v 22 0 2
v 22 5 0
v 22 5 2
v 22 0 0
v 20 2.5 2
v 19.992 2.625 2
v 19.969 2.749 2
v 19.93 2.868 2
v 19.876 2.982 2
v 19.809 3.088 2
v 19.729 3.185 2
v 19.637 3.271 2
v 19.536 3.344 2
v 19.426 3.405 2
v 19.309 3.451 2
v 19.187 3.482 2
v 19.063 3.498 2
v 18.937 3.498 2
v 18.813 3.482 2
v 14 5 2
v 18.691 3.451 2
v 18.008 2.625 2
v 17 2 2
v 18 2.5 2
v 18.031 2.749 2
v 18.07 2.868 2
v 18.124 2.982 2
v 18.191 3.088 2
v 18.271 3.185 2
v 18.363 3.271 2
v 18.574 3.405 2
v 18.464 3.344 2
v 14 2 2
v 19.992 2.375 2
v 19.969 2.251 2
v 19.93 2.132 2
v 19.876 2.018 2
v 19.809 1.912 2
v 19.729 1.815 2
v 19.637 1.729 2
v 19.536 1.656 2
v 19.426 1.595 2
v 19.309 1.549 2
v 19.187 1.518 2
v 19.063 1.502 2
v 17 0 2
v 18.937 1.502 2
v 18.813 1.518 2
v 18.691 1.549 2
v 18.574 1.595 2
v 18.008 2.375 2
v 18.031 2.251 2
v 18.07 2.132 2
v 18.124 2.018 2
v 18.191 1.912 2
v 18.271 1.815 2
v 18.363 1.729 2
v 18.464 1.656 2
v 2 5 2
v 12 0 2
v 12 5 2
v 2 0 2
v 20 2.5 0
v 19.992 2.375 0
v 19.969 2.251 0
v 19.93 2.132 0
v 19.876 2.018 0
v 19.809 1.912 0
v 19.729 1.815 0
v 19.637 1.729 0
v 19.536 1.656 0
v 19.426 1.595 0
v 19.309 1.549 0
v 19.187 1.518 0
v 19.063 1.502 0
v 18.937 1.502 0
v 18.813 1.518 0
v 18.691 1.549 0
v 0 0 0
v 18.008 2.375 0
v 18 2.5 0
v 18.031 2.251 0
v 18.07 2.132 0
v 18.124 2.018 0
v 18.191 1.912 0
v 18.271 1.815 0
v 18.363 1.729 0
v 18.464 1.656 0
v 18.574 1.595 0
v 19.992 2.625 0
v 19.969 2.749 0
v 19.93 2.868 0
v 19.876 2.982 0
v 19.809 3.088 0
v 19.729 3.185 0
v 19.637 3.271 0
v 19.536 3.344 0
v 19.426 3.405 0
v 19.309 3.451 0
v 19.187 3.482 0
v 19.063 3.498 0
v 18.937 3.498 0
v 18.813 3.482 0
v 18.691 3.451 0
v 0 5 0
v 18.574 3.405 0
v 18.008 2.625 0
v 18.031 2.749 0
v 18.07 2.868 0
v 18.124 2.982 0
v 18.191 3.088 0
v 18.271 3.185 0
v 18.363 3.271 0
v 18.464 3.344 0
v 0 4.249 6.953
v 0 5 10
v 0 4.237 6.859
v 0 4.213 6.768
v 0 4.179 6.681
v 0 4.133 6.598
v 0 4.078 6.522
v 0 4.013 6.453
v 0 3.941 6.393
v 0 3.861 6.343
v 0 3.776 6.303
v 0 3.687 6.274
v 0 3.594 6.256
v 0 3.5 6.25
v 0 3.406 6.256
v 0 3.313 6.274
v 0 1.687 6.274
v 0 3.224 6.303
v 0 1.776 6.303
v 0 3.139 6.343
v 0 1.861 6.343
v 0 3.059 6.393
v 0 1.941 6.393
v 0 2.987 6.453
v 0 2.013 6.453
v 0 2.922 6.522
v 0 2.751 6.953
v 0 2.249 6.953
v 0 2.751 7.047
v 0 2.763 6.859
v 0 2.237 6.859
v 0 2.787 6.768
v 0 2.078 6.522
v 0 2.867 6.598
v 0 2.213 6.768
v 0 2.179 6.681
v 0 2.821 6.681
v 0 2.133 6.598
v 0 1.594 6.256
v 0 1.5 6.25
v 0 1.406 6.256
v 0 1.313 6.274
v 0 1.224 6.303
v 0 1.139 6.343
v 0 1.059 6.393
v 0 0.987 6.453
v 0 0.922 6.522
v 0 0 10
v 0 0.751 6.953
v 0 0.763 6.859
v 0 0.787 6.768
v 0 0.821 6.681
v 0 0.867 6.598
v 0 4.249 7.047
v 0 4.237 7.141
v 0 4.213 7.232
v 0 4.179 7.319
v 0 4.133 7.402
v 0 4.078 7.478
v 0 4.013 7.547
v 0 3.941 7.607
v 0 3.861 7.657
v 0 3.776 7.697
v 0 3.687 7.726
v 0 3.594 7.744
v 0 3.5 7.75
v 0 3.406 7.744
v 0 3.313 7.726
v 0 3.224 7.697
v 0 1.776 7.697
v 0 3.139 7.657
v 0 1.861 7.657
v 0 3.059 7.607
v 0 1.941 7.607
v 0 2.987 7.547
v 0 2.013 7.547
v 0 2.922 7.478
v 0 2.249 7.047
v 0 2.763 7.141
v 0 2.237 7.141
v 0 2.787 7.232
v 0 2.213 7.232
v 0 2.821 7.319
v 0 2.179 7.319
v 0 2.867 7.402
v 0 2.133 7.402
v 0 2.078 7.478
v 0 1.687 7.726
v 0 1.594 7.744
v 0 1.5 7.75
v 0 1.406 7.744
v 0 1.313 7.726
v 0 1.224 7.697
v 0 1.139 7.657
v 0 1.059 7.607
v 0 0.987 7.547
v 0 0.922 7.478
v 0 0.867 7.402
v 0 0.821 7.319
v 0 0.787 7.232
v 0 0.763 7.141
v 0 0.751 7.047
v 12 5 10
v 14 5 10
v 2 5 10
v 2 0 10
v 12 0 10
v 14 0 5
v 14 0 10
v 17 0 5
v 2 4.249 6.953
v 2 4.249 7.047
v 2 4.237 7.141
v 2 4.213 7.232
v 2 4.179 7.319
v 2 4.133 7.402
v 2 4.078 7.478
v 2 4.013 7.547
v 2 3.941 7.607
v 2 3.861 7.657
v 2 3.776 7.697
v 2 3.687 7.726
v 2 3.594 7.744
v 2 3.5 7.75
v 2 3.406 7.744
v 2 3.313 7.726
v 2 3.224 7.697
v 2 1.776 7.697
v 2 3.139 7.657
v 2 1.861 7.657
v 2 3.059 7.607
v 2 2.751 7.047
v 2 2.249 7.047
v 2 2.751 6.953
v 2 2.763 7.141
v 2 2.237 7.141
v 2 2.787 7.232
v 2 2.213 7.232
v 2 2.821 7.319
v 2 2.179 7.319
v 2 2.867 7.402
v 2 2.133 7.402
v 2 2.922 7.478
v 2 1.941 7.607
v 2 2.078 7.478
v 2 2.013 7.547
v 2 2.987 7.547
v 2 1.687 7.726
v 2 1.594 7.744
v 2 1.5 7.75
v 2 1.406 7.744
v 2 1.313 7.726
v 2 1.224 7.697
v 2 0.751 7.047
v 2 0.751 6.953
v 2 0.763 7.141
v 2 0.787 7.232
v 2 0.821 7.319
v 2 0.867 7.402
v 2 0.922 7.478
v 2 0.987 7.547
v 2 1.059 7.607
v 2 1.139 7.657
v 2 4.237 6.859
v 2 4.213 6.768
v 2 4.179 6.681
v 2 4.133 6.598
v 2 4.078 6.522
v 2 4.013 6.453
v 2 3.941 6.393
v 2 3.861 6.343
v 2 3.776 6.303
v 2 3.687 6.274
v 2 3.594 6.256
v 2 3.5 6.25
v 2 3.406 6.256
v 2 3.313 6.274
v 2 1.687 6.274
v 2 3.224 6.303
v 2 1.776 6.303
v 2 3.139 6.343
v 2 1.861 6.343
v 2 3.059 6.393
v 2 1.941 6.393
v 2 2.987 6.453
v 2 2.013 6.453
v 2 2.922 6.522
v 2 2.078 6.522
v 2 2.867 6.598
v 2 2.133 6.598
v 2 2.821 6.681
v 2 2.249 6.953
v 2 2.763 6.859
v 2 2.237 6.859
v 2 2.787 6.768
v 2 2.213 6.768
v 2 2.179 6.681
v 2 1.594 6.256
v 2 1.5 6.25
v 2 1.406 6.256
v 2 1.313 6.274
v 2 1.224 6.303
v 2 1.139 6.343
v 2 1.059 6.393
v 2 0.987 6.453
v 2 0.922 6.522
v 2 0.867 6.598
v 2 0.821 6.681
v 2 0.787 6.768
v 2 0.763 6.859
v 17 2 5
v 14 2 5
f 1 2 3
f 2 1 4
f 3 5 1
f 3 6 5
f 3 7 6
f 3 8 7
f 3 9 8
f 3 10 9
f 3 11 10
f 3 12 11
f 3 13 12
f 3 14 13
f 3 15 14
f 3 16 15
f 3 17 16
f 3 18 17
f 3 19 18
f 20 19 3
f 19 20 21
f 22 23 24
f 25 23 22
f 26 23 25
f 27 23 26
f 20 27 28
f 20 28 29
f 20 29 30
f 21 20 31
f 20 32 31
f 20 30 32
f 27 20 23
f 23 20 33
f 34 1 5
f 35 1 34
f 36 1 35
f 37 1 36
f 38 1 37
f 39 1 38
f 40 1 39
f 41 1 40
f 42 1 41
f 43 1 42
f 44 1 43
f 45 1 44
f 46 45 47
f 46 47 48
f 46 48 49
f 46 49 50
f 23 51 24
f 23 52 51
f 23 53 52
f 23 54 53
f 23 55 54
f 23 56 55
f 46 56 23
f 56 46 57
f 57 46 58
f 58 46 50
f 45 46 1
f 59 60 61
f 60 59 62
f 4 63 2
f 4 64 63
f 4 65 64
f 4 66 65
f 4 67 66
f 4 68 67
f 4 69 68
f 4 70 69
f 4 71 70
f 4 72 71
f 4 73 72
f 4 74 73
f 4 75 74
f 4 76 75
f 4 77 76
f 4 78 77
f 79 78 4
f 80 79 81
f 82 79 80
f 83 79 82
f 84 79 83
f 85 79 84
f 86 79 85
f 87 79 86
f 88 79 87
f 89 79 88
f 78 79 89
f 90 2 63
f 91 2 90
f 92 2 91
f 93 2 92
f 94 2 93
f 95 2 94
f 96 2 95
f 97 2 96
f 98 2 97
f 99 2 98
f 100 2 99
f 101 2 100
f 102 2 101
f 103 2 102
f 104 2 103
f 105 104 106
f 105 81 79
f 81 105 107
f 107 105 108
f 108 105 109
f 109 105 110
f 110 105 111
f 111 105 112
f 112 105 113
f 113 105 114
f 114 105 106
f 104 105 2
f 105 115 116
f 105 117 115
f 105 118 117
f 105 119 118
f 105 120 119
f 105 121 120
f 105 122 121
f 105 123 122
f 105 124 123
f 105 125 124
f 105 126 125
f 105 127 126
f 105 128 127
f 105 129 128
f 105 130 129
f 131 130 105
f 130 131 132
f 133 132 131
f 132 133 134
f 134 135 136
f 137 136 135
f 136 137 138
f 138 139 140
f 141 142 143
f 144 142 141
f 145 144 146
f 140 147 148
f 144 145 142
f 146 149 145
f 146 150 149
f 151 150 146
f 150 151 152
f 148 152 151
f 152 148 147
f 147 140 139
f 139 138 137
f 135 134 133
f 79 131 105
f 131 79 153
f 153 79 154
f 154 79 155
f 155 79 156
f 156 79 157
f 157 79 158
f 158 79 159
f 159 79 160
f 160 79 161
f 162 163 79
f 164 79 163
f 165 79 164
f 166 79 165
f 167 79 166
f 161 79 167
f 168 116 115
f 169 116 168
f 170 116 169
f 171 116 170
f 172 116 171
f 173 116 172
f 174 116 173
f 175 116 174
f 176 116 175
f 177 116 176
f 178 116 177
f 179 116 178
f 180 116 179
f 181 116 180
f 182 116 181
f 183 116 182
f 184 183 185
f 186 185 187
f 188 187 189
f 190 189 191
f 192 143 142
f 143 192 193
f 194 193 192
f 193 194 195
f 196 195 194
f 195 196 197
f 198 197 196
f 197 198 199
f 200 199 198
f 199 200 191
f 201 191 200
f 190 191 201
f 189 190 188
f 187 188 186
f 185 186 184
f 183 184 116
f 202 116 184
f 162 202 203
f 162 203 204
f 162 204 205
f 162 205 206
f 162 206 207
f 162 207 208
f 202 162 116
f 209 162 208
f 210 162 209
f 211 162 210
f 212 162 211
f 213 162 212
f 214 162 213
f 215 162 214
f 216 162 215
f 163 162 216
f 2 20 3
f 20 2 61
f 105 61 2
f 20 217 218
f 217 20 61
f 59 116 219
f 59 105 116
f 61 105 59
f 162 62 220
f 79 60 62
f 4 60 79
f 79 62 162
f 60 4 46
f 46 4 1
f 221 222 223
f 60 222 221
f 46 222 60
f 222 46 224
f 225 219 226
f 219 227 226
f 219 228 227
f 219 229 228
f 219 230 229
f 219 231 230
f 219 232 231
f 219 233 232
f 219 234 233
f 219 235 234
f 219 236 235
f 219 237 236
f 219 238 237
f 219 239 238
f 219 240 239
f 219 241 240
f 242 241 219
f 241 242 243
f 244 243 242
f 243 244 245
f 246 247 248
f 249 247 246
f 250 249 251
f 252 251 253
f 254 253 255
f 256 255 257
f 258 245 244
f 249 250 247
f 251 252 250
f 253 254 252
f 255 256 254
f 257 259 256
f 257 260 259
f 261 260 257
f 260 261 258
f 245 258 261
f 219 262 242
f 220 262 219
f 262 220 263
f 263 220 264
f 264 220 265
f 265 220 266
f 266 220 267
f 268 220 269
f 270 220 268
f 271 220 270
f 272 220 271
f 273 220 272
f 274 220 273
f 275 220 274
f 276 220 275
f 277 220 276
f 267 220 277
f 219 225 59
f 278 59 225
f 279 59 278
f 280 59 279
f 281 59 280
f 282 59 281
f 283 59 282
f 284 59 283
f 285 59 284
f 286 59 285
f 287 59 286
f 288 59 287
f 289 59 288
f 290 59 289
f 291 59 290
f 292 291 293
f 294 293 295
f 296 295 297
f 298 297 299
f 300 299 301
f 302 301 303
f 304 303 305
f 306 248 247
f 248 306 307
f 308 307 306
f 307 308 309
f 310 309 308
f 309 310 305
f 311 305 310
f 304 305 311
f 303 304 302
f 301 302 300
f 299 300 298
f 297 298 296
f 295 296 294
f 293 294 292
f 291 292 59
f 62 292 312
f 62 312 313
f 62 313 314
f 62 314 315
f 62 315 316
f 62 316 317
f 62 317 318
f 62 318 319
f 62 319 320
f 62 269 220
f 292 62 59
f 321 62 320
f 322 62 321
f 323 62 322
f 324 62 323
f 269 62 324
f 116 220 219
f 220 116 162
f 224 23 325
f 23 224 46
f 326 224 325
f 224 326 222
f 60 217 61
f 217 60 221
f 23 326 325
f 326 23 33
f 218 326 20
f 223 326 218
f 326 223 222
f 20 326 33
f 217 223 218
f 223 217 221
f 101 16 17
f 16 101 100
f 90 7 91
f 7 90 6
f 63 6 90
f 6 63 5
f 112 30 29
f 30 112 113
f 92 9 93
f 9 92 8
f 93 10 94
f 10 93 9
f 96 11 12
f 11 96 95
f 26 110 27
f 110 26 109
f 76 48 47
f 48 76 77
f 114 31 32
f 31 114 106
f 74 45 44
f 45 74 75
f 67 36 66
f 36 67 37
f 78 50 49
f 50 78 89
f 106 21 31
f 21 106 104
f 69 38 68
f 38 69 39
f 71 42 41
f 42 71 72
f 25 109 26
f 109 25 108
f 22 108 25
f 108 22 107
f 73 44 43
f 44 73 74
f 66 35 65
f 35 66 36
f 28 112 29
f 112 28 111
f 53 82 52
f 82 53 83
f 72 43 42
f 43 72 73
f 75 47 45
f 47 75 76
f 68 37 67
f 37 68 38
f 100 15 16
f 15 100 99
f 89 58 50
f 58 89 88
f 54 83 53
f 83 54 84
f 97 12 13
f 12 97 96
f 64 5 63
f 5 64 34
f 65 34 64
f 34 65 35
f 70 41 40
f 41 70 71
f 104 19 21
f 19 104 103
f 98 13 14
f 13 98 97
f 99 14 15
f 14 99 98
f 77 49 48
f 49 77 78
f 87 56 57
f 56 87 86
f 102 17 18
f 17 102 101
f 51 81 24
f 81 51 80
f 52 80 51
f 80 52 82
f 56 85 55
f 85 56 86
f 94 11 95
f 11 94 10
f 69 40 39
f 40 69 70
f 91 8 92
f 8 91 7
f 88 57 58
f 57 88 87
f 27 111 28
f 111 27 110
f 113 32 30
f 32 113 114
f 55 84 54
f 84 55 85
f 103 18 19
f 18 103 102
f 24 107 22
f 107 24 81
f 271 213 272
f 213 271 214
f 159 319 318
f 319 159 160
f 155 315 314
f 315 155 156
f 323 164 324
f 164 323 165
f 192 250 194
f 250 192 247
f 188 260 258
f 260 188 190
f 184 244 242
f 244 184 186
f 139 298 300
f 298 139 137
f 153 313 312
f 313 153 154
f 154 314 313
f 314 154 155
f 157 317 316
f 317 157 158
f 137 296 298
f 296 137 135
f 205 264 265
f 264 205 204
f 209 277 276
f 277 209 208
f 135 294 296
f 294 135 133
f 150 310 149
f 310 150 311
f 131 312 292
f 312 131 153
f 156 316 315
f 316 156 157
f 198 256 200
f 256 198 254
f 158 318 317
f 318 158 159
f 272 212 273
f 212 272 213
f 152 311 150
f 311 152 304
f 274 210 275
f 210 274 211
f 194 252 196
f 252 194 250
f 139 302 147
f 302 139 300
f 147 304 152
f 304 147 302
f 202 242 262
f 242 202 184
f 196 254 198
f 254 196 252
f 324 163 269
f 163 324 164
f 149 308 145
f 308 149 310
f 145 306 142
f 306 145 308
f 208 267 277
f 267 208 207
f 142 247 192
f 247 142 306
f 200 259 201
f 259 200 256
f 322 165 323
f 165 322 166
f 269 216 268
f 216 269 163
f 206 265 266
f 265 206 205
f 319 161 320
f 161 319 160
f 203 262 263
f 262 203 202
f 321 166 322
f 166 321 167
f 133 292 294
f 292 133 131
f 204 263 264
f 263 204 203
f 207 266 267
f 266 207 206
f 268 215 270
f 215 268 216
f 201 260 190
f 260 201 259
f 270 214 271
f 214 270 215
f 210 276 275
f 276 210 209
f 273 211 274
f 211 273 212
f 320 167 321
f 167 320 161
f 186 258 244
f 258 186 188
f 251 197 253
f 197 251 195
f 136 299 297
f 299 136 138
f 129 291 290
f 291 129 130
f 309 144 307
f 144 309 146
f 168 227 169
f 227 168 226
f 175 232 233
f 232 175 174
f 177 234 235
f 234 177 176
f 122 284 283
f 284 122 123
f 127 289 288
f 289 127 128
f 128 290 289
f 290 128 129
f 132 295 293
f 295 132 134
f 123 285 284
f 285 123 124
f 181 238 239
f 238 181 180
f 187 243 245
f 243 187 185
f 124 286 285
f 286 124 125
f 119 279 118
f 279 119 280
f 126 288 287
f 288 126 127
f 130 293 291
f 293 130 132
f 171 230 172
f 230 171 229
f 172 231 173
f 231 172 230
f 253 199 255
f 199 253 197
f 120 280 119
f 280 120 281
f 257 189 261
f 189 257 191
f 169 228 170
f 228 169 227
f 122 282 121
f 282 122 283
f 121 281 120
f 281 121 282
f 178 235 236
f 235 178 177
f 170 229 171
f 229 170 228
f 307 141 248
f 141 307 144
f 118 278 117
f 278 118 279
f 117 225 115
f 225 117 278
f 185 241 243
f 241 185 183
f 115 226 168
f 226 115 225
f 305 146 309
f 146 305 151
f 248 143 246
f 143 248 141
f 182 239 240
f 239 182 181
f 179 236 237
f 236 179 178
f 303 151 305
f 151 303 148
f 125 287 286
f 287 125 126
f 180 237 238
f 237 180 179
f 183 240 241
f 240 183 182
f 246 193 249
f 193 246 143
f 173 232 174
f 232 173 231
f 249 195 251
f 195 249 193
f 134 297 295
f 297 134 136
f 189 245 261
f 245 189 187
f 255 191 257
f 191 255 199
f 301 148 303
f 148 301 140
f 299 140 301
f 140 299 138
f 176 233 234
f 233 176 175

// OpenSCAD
$fn=50;

difference(){
    union(){        
        cube([22,5,2]);
        cube([2,5,10]);
        translate([12,0,0])cube([5,2,5]);
        translate([12,0,0])cube([2,5,10]);
    }
    union(){
       
        
        translate([19,2.5,1])cylinder(5,d=2,center=true);
        

        //translate([0,1.5,5])rotate([0,90,0])cylinder(5,d=1.5,center=true);
        translate([0,1.5,7])rotate([0,90,0])cylinder(5,d=1.5,center=true);
        //translate([0,1.4,9])rotate([0,90,0])cylinder(5,d=1.5,center=true);

        //translate([0,3.5,5])rotate([0,90,0])cylinder(5,d=1.5,center=true);
        translate([0,3.5,7])rotate([0,90,0])cylinder(5,d=1.5,center=true);
        //translate([0,3.5,9])rotate([0,90,0])cylinder(5,d=1.5,center=true);


    }
}
    
